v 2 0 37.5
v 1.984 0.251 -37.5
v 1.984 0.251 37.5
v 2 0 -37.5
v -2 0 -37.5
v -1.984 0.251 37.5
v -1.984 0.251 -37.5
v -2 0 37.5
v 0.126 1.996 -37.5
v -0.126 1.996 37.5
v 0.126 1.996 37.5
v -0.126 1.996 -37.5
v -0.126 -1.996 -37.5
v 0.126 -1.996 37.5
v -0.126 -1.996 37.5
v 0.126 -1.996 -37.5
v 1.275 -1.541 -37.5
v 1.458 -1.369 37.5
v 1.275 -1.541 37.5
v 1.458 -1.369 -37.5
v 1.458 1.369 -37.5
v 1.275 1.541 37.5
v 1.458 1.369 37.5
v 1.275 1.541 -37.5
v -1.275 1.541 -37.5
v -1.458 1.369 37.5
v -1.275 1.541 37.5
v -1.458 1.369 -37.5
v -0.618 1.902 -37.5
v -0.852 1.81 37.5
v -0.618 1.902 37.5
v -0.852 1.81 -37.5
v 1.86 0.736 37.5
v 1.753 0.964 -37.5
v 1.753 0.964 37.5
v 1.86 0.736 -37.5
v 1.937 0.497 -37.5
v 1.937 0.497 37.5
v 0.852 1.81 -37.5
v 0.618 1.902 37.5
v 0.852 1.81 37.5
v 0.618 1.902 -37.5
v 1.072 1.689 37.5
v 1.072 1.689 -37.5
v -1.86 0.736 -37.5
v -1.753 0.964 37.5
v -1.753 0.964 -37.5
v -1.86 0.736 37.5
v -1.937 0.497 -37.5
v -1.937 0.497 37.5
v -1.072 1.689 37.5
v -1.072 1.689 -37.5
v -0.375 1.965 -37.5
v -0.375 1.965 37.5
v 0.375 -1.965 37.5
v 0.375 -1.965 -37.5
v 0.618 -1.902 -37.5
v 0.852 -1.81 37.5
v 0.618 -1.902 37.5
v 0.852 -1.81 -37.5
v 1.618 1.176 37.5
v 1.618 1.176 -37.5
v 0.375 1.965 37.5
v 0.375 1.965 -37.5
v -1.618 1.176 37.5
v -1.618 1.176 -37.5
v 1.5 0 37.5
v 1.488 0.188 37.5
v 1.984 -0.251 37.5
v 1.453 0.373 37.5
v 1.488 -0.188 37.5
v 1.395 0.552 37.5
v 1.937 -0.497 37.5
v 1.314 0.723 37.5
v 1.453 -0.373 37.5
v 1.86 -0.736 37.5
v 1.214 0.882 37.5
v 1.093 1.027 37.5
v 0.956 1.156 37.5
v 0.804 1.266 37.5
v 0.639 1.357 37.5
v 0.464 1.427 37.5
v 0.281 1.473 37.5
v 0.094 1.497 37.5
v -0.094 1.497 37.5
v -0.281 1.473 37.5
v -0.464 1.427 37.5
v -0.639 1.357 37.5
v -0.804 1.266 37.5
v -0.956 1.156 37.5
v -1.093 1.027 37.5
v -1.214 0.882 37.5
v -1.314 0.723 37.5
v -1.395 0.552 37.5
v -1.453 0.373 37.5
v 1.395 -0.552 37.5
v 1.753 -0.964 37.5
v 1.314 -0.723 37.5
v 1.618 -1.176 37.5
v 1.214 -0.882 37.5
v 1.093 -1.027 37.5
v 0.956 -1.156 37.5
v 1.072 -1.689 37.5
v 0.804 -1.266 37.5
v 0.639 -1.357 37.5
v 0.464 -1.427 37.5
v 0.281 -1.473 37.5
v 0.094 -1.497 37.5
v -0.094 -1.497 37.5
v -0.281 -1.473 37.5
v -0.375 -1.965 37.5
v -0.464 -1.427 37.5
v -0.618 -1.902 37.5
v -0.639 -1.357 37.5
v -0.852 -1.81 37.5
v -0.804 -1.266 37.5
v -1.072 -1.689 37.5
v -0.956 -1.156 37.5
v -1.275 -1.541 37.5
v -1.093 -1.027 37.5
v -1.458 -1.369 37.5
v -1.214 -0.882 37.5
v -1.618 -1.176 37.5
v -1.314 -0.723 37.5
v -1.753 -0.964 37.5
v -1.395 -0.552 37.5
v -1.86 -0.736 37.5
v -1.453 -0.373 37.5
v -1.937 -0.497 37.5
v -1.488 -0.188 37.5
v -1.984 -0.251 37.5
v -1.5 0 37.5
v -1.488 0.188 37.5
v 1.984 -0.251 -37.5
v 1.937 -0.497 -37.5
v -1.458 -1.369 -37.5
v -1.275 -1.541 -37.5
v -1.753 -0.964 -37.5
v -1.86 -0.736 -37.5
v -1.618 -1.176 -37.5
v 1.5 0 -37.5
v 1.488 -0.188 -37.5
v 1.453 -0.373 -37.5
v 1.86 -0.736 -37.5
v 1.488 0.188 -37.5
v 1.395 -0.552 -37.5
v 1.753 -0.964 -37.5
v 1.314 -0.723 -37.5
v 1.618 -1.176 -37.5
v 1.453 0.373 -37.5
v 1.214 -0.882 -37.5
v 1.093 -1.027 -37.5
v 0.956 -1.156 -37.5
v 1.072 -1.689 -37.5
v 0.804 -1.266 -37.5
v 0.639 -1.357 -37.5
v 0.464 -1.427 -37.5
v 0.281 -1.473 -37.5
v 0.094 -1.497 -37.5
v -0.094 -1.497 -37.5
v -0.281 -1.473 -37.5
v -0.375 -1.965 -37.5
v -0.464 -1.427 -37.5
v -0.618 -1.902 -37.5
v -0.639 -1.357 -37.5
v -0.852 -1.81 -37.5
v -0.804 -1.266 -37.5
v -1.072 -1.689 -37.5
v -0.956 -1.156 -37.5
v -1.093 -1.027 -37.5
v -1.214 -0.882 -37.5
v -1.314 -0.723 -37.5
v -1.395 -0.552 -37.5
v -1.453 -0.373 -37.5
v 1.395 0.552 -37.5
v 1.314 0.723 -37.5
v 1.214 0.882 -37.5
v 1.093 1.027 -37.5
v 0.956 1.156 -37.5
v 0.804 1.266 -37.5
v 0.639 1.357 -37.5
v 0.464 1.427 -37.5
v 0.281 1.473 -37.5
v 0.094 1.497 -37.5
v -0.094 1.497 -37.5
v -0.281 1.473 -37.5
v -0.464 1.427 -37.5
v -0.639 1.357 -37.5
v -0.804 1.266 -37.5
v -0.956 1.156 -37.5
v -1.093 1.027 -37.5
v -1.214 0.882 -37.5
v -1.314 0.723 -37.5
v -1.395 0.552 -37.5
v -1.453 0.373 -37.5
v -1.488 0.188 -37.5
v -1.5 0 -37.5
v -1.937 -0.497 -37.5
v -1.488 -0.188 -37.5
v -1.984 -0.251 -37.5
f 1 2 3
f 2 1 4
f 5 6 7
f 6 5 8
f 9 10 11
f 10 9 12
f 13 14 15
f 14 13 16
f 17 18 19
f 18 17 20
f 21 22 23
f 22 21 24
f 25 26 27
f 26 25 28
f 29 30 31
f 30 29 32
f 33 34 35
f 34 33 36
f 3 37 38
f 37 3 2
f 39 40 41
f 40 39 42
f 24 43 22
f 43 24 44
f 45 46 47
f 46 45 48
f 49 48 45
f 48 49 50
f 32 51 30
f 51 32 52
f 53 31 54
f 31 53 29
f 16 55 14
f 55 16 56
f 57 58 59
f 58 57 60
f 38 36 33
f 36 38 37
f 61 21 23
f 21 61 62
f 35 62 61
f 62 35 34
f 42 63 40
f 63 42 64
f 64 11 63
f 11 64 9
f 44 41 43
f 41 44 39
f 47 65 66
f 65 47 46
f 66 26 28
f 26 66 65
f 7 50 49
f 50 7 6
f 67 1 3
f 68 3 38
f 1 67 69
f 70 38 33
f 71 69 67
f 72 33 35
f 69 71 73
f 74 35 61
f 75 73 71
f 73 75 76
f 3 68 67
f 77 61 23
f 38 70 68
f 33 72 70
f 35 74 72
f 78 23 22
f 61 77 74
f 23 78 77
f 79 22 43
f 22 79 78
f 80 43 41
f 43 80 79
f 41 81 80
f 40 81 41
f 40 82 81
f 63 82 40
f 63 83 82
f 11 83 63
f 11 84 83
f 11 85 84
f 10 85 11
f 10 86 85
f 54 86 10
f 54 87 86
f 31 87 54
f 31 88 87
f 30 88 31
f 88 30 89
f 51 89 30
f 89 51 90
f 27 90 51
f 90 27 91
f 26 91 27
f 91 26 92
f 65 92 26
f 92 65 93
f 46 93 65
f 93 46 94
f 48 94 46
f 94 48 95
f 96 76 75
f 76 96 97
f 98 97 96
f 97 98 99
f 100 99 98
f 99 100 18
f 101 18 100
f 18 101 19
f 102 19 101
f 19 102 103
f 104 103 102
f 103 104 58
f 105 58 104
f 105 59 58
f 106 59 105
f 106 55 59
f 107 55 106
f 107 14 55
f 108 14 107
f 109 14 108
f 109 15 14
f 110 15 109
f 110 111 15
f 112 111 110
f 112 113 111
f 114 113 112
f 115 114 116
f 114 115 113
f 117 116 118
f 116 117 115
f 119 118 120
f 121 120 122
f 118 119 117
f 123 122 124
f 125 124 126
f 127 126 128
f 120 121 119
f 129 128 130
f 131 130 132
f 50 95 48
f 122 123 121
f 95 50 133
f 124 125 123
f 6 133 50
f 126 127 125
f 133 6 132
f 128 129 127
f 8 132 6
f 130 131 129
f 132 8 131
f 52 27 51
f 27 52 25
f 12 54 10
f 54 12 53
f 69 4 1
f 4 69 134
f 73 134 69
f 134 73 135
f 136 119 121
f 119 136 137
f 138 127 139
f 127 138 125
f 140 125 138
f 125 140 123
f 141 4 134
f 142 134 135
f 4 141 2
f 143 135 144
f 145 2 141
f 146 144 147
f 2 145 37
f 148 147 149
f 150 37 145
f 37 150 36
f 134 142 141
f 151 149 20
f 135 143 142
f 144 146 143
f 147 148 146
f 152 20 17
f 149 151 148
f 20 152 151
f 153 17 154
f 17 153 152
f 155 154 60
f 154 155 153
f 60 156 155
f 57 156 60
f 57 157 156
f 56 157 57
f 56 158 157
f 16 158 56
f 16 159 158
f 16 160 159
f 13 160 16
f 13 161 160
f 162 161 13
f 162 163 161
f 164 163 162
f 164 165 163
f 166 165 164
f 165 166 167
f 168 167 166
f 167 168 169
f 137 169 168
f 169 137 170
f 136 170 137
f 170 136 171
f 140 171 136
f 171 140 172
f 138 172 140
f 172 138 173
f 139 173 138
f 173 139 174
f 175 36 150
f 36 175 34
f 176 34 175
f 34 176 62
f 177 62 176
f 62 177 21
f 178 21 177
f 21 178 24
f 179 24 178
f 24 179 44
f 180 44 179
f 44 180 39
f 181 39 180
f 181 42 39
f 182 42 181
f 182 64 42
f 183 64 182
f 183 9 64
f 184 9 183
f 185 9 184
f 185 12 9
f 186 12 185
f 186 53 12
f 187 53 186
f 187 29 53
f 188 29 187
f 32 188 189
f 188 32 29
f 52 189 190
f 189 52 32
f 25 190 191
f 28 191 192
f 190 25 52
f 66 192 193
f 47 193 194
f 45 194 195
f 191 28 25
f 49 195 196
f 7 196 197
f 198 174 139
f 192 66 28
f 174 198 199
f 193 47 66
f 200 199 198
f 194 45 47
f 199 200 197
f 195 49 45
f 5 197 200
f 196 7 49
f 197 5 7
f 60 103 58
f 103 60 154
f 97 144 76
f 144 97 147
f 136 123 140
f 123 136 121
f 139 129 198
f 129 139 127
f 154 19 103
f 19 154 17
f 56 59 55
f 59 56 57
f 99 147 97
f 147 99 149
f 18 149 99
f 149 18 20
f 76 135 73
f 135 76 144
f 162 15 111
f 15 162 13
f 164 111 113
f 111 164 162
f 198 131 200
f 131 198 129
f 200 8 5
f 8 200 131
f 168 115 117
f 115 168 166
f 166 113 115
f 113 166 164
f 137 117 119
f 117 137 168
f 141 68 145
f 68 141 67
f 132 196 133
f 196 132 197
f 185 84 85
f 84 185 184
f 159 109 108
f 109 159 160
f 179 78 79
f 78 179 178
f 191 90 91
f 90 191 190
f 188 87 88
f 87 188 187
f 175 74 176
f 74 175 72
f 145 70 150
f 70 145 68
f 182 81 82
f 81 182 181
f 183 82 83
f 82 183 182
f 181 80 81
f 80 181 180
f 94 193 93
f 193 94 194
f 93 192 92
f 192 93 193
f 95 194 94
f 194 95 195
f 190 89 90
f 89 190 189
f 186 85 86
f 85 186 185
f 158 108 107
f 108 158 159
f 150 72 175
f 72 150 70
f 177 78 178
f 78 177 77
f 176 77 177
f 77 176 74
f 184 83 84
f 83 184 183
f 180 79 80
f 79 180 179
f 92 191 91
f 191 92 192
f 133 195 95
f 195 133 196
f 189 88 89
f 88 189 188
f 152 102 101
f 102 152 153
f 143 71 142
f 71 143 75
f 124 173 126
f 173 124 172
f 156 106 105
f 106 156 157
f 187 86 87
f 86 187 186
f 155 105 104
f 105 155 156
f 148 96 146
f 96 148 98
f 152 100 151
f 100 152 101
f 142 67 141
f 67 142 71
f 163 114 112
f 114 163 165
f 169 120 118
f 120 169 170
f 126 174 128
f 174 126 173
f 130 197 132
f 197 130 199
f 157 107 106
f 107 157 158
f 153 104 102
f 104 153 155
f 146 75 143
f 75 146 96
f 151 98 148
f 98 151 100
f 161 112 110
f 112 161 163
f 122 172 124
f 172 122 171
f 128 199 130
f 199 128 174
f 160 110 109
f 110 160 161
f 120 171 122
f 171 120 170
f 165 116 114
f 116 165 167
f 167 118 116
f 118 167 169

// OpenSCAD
$fn = 50;


difference() {
	union() {
		translate(v = [0, 0, -37.5000000000]) {
			cylinder(h = 75, r = 2.0000000000);
		}
	}
	union() {
		translate(v = [0, 0, -100.0000000000]) {
			cylinder(h = 200, r = 1.5000000000);
		}
	}
}
